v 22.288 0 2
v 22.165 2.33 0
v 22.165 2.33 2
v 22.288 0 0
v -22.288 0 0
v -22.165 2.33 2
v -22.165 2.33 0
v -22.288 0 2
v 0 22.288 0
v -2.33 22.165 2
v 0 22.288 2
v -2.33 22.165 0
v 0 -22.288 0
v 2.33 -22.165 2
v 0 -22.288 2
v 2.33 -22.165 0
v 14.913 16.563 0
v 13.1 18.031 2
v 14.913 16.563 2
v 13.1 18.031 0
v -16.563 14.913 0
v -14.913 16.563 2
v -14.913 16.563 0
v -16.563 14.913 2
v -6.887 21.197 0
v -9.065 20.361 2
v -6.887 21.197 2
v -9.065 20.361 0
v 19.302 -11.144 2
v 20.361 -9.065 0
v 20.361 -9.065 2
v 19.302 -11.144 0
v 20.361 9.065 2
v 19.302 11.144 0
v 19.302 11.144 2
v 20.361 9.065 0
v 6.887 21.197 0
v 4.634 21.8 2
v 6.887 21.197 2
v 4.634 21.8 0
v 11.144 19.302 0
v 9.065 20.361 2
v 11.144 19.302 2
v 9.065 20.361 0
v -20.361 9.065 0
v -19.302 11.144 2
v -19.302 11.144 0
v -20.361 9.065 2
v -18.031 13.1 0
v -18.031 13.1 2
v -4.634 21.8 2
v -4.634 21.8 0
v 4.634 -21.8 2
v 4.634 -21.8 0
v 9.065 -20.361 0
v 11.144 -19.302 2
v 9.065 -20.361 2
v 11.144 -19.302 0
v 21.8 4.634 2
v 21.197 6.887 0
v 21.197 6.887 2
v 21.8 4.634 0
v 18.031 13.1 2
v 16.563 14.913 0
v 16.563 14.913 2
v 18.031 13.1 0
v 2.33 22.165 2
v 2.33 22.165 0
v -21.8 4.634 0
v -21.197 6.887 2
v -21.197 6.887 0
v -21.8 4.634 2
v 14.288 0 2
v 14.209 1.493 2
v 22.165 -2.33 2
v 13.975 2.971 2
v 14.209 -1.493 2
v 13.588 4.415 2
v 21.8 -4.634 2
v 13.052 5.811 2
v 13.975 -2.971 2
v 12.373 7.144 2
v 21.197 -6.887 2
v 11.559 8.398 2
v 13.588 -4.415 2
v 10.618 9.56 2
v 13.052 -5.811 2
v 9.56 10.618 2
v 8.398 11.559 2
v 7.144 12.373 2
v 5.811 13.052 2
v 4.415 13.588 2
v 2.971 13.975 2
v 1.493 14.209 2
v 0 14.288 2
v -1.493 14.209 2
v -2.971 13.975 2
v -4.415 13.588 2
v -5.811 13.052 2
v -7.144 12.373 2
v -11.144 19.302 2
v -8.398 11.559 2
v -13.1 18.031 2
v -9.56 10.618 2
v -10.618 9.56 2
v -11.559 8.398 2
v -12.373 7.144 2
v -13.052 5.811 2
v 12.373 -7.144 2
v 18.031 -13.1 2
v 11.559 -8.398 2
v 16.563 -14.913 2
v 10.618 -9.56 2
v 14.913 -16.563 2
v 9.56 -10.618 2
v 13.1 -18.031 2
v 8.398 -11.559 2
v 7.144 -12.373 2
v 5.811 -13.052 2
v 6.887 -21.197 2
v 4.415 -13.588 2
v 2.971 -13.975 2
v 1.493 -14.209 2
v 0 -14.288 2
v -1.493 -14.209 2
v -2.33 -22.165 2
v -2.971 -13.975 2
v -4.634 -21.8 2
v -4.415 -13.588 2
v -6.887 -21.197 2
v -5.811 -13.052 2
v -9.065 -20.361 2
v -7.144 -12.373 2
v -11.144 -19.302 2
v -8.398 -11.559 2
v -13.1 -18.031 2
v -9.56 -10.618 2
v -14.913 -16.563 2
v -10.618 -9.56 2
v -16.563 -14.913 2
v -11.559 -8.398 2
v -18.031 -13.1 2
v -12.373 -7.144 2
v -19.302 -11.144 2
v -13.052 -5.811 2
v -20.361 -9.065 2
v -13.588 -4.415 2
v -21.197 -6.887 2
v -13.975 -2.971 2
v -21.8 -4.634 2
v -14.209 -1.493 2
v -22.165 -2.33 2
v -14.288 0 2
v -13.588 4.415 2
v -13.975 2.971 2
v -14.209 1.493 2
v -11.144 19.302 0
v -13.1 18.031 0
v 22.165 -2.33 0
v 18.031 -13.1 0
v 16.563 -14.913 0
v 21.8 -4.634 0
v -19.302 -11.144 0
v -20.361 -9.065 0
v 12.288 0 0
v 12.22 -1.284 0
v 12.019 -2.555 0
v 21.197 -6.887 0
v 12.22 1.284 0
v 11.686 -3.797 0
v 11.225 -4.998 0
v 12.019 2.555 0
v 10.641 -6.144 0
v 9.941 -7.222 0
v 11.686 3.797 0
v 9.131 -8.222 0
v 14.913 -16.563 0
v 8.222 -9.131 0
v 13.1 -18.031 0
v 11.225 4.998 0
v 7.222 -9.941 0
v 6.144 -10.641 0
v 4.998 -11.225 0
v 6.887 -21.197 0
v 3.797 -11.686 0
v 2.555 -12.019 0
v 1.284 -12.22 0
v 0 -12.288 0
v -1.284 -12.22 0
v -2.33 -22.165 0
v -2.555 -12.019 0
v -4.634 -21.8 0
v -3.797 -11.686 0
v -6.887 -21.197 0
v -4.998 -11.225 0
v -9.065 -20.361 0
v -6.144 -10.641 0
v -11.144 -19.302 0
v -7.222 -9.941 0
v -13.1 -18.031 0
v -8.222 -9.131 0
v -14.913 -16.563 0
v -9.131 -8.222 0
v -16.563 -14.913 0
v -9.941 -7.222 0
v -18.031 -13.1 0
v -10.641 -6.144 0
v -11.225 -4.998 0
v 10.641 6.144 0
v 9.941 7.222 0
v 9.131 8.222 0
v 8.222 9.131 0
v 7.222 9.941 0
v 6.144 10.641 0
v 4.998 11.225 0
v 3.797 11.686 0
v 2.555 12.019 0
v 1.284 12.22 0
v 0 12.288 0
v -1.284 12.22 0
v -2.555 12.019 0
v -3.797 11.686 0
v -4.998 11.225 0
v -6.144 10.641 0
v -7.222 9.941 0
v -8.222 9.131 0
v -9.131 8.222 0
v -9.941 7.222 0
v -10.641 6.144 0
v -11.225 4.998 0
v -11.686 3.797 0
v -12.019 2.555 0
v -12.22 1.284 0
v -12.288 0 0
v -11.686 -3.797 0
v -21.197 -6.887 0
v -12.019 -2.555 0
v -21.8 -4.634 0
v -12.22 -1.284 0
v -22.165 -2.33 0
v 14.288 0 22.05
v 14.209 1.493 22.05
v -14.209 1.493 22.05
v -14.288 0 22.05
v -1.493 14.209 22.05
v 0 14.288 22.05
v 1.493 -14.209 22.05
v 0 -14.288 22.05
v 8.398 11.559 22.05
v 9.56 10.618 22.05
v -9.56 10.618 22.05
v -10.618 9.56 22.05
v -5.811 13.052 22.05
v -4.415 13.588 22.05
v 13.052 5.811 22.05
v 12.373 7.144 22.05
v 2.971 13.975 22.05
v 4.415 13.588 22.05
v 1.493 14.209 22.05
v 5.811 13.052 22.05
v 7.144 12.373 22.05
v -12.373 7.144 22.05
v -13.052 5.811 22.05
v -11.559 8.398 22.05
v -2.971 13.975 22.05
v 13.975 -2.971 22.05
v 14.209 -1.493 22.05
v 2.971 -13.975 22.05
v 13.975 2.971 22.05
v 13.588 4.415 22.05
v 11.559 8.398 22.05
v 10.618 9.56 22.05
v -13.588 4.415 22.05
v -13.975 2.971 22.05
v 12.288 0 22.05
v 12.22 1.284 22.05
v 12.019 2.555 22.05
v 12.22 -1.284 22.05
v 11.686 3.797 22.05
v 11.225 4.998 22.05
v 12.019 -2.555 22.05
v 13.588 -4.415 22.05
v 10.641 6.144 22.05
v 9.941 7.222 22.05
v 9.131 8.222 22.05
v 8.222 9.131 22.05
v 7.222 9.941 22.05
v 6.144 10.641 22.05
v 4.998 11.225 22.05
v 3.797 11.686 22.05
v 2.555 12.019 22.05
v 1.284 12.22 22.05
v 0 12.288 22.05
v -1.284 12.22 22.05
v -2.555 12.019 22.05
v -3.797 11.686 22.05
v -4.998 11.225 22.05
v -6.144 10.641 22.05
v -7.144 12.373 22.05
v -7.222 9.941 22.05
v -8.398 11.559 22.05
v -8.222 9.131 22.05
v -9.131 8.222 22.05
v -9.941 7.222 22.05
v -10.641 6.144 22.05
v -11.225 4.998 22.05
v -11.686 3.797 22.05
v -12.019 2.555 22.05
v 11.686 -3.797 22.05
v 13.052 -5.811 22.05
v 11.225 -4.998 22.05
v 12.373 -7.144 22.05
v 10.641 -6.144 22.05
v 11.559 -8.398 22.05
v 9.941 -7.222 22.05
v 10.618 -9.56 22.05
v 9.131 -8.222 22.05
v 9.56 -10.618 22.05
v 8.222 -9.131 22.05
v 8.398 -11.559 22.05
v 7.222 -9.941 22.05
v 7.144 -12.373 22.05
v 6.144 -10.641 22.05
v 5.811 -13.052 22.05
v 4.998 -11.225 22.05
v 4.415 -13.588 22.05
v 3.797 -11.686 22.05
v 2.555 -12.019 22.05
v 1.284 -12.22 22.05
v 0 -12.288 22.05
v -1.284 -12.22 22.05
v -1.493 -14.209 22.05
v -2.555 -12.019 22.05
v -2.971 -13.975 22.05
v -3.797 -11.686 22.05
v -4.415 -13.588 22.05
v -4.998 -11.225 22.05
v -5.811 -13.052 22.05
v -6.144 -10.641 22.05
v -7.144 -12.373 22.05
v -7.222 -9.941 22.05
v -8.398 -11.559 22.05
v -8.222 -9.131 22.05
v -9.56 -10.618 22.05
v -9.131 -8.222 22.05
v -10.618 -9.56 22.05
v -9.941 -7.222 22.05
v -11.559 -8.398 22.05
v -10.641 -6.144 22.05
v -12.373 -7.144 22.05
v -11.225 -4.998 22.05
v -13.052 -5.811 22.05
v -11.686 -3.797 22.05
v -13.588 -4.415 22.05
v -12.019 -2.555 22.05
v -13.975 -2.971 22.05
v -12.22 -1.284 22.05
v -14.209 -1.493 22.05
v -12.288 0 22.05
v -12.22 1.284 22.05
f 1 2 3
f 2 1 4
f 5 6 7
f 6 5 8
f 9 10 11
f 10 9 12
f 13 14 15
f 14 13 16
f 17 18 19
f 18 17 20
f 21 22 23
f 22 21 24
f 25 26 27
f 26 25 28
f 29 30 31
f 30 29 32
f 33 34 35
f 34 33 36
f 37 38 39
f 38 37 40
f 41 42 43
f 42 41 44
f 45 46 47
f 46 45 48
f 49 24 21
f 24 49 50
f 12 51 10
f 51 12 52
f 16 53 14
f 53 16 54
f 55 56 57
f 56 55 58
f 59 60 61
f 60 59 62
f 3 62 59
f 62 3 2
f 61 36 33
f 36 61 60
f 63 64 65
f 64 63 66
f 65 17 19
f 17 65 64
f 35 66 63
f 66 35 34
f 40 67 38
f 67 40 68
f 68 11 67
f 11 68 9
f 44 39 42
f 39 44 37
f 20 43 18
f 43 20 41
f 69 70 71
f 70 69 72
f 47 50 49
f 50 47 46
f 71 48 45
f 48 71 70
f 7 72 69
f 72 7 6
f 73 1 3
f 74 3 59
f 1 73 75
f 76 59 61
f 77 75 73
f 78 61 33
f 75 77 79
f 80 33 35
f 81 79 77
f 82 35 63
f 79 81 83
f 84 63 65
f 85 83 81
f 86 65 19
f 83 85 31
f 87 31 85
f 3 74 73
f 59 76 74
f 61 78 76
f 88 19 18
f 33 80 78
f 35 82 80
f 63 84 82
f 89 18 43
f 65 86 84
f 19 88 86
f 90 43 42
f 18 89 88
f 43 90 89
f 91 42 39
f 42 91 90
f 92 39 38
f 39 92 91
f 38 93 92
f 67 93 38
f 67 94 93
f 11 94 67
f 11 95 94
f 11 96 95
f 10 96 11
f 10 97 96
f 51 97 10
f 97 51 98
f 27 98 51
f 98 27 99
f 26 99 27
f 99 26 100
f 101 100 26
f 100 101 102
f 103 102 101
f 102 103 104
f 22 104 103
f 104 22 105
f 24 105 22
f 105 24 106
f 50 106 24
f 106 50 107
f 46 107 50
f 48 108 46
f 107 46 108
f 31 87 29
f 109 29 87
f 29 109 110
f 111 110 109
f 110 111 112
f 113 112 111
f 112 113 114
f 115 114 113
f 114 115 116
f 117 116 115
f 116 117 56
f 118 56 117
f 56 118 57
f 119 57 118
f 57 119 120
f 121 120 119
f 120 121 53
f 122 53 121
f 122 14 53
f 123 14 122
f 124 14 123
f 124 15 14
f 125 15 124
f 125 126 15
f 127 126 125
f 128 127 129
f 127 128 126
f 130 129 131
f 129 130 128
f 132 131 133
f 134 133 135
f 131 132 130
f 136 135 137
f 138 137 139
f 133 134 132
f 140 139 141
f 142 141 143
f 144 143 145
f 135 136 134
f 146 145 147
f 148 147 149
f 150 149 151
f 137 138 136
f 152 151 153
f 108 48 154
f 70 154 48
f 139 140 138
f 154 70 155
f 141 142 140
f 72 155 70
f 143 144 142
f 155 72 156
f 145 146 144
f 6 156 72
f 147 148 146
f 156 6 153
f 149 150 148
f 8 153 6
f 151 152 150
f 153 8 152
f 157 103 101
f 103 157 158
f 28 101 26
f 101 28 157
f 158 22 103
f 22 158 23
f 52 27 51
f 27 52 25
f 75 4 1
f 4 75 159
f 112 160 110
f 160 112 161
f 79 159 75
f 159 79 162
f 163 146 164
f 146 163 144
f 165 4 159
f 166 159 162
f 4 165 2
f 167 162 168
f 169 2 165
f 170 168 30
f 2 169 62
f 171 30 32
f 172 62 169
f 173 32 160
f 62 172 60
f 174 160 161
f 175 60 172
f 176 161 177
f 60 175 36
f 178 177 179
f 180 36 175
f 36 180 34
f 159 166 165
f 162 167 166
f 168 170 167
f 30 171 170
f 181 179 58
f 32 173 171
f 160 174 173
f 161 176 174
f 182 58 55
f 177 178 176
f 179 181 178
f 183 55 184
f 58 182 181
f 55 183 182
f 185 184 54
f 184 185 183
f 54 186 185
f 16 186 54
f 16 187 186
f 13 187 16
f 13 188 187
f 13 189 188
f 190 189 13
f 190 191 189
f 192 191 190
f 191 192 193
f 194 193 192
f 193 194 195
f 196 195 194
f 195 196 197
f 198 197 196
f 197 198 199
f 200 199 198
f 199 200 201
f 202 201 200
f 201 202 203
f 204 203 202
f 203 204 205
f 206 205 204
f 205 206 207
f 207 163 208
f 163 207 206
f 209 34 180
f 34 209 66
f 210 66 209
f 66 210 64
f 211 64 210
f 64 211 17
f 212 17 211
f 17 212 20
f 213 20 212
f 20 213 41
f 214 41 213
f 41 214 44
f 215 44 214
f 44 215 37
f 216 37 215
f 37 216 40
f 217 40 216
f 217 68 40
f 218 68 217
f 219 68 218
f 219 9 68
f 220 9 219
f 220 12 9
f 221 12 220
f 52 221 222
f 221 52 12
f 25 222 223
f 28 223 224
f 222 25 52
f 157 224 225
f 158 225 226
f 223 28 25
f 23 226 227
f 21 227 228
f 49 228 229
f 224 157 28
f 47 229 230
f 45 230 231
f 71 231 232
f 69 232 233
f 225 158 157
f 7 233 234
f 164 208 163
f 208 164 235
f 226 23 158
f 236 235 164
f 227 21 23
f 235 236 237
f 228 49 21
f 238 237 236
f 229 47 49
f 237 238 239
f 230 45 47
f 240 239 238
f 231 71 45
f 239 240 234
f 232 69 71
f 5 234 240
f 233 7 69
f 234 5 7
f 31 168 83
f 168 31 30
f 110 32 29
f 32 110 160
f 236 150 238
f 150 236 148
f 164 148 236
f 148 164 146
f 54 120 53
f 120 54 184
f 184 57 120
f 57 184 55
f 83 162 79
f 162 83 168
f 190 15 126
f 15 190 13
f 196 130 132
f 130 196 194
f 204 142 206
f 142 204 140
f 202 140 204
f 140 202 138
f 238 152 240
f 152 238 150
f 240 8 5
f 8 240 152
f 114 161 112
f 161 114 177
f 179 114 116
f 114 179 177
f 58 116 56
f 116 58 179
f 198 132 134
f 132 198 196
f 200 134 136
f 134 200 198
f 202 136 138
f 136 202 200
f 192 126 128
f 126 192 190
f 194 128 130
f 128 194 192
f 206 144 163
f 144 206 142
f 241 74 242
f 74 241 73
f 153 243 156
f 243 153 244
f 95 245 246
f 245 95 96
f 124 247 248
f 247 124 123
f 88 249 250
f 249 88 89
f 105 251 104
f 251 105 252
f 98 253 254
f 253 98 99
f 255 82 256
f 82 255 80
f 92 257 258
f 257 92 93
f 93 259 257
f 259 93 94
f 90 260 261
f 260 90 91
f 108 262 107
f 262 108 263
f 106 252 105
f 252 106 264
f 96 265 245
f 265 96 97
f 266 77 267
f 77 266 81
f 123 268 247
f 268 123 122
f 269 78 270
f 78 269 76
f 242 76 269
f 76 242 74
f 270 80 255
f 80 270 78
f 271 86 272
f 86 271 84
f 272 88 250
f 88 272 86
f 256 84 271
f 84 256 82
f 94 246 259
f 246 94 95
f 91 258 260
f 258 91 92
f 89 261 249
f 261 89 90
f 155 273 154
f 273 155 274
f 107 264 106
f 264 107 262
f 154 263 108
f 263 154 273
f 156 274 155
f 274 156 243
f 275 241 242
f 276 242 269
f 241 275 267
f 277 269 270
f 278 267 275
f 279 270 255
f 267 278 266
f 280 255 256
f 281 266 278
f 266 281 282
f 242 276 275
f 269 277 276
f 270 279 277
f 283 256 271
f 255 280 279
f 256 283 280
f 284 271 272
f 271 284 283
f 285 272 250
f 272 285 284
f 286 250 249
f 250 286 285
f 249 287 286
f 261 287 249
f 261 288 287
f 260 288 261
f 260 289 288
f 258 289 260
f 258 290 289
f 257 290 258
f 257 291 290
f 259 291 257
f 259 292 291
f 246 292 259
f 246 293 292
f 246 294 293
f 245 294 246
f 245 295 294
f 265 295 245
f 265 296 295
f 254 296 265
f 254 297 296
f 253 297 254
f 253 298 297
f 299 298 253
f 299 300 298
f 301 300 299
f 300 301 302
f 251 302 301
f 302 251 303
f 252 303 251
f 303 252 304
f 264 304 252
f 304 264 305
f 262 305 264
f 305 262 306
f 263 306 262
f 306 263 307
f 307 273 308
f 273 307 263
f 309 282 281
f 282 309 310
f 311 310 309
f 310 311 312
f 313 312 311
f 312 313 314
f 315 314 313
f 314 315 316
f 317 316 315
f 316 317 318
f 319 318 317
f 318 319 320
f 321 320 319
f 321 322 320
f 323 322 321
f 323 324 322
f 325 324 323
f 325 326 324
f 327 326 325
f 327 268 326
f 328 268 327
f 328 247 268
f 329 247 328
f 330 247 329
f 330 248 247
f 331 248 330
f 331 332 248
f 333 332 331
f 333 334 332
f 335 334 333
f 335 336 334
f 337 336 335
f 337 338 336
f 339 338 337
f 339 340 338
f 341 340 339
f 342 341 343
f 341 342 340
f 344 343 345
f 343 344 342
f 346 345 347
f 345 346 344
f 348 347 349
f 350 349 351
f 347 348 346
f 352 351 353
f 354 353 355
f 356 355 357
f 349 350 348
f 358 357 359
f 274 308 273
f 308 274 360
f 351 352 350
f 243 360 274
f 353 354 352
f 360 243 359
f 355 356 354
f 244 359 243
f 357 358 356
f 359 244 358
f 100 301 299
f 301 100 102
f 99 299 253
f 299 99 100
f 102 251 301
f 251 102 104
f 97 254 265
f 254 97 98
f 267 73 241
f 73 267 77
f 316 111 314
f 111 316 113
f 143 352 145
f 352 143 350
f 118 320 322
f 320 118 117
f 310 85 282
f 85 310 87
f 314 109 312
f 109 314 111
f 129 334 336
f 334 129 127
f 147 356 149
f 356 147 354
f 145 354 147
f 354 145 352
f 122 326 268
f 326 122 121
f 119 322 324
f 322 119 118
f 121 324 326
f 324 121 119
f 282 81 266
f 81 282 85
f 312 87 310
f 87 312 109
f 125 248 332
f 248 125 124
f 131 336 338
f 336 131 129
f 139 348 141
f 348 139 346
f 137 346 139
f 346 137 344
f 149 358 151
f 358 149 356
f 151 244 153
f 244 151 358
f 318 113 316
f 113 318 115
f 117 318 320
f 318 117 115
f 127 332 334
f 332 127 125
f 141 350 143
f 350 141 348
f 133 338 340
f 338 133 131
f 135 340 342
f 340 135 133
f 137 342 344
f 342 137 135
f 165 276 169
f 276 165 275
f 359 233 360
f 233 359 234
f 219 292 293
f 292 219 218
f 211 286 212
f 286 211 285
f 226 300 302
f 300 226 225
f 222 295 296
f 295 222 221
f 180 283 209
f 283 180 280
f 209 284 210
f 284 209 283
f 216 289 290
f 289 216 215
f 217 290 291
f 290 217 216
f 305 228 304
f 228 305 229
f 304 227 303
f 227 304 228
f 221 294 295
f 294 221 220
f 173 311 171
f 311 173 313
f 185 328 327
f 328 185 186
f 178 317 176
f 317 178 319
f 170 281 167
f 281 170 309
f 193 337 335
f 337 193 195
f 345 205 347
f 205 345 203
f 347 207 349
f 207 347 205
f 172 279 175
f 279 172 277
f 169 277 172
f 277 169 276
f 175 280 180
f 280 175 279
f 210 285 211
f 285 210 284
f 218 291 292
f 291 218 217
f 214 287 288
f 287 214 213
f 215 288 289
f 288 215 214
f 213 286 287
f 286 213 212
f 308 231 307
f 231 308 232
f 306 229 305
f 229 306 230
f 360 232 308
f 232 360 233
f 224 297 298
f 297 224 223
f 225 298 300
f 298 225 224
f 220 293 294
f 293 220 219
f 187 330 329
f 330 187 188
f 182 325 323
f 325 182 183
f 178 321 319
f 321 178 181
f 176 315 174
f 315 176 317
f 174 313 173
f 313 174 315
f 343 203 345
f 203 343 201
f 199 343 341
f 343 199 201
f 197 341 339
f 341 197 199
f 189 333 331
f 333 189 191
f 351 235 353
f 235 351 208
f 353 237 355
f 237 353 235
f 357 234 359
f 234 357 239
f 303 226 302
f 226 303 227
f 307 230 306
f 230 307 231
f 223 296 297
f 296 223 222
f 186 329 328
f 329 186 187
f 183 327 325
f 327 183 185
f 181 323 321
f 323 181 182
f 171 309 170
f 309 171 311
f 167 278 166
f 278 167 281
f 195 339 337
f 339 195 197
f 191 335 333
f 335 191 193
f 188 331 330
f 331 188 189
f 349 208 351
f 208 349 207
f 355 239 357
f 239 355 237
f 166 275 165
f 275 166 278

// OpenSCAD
difference(){
	union() {
		union() {
			cylinder($fn = 60, h = 2, r = 22.2875000000);
			cylinder($fn = 60, h = 22.0500000000, r = 14.2875000000);
		}
	}
	/* Holes Below*/
	union(){
		union(){
			translate(v = [0, 0, -1]) {
				cylinder($fn = 60, h = 24.0500000000, r = 12.2875000000);
			}
		}
	} /* End Holes */ 
}
